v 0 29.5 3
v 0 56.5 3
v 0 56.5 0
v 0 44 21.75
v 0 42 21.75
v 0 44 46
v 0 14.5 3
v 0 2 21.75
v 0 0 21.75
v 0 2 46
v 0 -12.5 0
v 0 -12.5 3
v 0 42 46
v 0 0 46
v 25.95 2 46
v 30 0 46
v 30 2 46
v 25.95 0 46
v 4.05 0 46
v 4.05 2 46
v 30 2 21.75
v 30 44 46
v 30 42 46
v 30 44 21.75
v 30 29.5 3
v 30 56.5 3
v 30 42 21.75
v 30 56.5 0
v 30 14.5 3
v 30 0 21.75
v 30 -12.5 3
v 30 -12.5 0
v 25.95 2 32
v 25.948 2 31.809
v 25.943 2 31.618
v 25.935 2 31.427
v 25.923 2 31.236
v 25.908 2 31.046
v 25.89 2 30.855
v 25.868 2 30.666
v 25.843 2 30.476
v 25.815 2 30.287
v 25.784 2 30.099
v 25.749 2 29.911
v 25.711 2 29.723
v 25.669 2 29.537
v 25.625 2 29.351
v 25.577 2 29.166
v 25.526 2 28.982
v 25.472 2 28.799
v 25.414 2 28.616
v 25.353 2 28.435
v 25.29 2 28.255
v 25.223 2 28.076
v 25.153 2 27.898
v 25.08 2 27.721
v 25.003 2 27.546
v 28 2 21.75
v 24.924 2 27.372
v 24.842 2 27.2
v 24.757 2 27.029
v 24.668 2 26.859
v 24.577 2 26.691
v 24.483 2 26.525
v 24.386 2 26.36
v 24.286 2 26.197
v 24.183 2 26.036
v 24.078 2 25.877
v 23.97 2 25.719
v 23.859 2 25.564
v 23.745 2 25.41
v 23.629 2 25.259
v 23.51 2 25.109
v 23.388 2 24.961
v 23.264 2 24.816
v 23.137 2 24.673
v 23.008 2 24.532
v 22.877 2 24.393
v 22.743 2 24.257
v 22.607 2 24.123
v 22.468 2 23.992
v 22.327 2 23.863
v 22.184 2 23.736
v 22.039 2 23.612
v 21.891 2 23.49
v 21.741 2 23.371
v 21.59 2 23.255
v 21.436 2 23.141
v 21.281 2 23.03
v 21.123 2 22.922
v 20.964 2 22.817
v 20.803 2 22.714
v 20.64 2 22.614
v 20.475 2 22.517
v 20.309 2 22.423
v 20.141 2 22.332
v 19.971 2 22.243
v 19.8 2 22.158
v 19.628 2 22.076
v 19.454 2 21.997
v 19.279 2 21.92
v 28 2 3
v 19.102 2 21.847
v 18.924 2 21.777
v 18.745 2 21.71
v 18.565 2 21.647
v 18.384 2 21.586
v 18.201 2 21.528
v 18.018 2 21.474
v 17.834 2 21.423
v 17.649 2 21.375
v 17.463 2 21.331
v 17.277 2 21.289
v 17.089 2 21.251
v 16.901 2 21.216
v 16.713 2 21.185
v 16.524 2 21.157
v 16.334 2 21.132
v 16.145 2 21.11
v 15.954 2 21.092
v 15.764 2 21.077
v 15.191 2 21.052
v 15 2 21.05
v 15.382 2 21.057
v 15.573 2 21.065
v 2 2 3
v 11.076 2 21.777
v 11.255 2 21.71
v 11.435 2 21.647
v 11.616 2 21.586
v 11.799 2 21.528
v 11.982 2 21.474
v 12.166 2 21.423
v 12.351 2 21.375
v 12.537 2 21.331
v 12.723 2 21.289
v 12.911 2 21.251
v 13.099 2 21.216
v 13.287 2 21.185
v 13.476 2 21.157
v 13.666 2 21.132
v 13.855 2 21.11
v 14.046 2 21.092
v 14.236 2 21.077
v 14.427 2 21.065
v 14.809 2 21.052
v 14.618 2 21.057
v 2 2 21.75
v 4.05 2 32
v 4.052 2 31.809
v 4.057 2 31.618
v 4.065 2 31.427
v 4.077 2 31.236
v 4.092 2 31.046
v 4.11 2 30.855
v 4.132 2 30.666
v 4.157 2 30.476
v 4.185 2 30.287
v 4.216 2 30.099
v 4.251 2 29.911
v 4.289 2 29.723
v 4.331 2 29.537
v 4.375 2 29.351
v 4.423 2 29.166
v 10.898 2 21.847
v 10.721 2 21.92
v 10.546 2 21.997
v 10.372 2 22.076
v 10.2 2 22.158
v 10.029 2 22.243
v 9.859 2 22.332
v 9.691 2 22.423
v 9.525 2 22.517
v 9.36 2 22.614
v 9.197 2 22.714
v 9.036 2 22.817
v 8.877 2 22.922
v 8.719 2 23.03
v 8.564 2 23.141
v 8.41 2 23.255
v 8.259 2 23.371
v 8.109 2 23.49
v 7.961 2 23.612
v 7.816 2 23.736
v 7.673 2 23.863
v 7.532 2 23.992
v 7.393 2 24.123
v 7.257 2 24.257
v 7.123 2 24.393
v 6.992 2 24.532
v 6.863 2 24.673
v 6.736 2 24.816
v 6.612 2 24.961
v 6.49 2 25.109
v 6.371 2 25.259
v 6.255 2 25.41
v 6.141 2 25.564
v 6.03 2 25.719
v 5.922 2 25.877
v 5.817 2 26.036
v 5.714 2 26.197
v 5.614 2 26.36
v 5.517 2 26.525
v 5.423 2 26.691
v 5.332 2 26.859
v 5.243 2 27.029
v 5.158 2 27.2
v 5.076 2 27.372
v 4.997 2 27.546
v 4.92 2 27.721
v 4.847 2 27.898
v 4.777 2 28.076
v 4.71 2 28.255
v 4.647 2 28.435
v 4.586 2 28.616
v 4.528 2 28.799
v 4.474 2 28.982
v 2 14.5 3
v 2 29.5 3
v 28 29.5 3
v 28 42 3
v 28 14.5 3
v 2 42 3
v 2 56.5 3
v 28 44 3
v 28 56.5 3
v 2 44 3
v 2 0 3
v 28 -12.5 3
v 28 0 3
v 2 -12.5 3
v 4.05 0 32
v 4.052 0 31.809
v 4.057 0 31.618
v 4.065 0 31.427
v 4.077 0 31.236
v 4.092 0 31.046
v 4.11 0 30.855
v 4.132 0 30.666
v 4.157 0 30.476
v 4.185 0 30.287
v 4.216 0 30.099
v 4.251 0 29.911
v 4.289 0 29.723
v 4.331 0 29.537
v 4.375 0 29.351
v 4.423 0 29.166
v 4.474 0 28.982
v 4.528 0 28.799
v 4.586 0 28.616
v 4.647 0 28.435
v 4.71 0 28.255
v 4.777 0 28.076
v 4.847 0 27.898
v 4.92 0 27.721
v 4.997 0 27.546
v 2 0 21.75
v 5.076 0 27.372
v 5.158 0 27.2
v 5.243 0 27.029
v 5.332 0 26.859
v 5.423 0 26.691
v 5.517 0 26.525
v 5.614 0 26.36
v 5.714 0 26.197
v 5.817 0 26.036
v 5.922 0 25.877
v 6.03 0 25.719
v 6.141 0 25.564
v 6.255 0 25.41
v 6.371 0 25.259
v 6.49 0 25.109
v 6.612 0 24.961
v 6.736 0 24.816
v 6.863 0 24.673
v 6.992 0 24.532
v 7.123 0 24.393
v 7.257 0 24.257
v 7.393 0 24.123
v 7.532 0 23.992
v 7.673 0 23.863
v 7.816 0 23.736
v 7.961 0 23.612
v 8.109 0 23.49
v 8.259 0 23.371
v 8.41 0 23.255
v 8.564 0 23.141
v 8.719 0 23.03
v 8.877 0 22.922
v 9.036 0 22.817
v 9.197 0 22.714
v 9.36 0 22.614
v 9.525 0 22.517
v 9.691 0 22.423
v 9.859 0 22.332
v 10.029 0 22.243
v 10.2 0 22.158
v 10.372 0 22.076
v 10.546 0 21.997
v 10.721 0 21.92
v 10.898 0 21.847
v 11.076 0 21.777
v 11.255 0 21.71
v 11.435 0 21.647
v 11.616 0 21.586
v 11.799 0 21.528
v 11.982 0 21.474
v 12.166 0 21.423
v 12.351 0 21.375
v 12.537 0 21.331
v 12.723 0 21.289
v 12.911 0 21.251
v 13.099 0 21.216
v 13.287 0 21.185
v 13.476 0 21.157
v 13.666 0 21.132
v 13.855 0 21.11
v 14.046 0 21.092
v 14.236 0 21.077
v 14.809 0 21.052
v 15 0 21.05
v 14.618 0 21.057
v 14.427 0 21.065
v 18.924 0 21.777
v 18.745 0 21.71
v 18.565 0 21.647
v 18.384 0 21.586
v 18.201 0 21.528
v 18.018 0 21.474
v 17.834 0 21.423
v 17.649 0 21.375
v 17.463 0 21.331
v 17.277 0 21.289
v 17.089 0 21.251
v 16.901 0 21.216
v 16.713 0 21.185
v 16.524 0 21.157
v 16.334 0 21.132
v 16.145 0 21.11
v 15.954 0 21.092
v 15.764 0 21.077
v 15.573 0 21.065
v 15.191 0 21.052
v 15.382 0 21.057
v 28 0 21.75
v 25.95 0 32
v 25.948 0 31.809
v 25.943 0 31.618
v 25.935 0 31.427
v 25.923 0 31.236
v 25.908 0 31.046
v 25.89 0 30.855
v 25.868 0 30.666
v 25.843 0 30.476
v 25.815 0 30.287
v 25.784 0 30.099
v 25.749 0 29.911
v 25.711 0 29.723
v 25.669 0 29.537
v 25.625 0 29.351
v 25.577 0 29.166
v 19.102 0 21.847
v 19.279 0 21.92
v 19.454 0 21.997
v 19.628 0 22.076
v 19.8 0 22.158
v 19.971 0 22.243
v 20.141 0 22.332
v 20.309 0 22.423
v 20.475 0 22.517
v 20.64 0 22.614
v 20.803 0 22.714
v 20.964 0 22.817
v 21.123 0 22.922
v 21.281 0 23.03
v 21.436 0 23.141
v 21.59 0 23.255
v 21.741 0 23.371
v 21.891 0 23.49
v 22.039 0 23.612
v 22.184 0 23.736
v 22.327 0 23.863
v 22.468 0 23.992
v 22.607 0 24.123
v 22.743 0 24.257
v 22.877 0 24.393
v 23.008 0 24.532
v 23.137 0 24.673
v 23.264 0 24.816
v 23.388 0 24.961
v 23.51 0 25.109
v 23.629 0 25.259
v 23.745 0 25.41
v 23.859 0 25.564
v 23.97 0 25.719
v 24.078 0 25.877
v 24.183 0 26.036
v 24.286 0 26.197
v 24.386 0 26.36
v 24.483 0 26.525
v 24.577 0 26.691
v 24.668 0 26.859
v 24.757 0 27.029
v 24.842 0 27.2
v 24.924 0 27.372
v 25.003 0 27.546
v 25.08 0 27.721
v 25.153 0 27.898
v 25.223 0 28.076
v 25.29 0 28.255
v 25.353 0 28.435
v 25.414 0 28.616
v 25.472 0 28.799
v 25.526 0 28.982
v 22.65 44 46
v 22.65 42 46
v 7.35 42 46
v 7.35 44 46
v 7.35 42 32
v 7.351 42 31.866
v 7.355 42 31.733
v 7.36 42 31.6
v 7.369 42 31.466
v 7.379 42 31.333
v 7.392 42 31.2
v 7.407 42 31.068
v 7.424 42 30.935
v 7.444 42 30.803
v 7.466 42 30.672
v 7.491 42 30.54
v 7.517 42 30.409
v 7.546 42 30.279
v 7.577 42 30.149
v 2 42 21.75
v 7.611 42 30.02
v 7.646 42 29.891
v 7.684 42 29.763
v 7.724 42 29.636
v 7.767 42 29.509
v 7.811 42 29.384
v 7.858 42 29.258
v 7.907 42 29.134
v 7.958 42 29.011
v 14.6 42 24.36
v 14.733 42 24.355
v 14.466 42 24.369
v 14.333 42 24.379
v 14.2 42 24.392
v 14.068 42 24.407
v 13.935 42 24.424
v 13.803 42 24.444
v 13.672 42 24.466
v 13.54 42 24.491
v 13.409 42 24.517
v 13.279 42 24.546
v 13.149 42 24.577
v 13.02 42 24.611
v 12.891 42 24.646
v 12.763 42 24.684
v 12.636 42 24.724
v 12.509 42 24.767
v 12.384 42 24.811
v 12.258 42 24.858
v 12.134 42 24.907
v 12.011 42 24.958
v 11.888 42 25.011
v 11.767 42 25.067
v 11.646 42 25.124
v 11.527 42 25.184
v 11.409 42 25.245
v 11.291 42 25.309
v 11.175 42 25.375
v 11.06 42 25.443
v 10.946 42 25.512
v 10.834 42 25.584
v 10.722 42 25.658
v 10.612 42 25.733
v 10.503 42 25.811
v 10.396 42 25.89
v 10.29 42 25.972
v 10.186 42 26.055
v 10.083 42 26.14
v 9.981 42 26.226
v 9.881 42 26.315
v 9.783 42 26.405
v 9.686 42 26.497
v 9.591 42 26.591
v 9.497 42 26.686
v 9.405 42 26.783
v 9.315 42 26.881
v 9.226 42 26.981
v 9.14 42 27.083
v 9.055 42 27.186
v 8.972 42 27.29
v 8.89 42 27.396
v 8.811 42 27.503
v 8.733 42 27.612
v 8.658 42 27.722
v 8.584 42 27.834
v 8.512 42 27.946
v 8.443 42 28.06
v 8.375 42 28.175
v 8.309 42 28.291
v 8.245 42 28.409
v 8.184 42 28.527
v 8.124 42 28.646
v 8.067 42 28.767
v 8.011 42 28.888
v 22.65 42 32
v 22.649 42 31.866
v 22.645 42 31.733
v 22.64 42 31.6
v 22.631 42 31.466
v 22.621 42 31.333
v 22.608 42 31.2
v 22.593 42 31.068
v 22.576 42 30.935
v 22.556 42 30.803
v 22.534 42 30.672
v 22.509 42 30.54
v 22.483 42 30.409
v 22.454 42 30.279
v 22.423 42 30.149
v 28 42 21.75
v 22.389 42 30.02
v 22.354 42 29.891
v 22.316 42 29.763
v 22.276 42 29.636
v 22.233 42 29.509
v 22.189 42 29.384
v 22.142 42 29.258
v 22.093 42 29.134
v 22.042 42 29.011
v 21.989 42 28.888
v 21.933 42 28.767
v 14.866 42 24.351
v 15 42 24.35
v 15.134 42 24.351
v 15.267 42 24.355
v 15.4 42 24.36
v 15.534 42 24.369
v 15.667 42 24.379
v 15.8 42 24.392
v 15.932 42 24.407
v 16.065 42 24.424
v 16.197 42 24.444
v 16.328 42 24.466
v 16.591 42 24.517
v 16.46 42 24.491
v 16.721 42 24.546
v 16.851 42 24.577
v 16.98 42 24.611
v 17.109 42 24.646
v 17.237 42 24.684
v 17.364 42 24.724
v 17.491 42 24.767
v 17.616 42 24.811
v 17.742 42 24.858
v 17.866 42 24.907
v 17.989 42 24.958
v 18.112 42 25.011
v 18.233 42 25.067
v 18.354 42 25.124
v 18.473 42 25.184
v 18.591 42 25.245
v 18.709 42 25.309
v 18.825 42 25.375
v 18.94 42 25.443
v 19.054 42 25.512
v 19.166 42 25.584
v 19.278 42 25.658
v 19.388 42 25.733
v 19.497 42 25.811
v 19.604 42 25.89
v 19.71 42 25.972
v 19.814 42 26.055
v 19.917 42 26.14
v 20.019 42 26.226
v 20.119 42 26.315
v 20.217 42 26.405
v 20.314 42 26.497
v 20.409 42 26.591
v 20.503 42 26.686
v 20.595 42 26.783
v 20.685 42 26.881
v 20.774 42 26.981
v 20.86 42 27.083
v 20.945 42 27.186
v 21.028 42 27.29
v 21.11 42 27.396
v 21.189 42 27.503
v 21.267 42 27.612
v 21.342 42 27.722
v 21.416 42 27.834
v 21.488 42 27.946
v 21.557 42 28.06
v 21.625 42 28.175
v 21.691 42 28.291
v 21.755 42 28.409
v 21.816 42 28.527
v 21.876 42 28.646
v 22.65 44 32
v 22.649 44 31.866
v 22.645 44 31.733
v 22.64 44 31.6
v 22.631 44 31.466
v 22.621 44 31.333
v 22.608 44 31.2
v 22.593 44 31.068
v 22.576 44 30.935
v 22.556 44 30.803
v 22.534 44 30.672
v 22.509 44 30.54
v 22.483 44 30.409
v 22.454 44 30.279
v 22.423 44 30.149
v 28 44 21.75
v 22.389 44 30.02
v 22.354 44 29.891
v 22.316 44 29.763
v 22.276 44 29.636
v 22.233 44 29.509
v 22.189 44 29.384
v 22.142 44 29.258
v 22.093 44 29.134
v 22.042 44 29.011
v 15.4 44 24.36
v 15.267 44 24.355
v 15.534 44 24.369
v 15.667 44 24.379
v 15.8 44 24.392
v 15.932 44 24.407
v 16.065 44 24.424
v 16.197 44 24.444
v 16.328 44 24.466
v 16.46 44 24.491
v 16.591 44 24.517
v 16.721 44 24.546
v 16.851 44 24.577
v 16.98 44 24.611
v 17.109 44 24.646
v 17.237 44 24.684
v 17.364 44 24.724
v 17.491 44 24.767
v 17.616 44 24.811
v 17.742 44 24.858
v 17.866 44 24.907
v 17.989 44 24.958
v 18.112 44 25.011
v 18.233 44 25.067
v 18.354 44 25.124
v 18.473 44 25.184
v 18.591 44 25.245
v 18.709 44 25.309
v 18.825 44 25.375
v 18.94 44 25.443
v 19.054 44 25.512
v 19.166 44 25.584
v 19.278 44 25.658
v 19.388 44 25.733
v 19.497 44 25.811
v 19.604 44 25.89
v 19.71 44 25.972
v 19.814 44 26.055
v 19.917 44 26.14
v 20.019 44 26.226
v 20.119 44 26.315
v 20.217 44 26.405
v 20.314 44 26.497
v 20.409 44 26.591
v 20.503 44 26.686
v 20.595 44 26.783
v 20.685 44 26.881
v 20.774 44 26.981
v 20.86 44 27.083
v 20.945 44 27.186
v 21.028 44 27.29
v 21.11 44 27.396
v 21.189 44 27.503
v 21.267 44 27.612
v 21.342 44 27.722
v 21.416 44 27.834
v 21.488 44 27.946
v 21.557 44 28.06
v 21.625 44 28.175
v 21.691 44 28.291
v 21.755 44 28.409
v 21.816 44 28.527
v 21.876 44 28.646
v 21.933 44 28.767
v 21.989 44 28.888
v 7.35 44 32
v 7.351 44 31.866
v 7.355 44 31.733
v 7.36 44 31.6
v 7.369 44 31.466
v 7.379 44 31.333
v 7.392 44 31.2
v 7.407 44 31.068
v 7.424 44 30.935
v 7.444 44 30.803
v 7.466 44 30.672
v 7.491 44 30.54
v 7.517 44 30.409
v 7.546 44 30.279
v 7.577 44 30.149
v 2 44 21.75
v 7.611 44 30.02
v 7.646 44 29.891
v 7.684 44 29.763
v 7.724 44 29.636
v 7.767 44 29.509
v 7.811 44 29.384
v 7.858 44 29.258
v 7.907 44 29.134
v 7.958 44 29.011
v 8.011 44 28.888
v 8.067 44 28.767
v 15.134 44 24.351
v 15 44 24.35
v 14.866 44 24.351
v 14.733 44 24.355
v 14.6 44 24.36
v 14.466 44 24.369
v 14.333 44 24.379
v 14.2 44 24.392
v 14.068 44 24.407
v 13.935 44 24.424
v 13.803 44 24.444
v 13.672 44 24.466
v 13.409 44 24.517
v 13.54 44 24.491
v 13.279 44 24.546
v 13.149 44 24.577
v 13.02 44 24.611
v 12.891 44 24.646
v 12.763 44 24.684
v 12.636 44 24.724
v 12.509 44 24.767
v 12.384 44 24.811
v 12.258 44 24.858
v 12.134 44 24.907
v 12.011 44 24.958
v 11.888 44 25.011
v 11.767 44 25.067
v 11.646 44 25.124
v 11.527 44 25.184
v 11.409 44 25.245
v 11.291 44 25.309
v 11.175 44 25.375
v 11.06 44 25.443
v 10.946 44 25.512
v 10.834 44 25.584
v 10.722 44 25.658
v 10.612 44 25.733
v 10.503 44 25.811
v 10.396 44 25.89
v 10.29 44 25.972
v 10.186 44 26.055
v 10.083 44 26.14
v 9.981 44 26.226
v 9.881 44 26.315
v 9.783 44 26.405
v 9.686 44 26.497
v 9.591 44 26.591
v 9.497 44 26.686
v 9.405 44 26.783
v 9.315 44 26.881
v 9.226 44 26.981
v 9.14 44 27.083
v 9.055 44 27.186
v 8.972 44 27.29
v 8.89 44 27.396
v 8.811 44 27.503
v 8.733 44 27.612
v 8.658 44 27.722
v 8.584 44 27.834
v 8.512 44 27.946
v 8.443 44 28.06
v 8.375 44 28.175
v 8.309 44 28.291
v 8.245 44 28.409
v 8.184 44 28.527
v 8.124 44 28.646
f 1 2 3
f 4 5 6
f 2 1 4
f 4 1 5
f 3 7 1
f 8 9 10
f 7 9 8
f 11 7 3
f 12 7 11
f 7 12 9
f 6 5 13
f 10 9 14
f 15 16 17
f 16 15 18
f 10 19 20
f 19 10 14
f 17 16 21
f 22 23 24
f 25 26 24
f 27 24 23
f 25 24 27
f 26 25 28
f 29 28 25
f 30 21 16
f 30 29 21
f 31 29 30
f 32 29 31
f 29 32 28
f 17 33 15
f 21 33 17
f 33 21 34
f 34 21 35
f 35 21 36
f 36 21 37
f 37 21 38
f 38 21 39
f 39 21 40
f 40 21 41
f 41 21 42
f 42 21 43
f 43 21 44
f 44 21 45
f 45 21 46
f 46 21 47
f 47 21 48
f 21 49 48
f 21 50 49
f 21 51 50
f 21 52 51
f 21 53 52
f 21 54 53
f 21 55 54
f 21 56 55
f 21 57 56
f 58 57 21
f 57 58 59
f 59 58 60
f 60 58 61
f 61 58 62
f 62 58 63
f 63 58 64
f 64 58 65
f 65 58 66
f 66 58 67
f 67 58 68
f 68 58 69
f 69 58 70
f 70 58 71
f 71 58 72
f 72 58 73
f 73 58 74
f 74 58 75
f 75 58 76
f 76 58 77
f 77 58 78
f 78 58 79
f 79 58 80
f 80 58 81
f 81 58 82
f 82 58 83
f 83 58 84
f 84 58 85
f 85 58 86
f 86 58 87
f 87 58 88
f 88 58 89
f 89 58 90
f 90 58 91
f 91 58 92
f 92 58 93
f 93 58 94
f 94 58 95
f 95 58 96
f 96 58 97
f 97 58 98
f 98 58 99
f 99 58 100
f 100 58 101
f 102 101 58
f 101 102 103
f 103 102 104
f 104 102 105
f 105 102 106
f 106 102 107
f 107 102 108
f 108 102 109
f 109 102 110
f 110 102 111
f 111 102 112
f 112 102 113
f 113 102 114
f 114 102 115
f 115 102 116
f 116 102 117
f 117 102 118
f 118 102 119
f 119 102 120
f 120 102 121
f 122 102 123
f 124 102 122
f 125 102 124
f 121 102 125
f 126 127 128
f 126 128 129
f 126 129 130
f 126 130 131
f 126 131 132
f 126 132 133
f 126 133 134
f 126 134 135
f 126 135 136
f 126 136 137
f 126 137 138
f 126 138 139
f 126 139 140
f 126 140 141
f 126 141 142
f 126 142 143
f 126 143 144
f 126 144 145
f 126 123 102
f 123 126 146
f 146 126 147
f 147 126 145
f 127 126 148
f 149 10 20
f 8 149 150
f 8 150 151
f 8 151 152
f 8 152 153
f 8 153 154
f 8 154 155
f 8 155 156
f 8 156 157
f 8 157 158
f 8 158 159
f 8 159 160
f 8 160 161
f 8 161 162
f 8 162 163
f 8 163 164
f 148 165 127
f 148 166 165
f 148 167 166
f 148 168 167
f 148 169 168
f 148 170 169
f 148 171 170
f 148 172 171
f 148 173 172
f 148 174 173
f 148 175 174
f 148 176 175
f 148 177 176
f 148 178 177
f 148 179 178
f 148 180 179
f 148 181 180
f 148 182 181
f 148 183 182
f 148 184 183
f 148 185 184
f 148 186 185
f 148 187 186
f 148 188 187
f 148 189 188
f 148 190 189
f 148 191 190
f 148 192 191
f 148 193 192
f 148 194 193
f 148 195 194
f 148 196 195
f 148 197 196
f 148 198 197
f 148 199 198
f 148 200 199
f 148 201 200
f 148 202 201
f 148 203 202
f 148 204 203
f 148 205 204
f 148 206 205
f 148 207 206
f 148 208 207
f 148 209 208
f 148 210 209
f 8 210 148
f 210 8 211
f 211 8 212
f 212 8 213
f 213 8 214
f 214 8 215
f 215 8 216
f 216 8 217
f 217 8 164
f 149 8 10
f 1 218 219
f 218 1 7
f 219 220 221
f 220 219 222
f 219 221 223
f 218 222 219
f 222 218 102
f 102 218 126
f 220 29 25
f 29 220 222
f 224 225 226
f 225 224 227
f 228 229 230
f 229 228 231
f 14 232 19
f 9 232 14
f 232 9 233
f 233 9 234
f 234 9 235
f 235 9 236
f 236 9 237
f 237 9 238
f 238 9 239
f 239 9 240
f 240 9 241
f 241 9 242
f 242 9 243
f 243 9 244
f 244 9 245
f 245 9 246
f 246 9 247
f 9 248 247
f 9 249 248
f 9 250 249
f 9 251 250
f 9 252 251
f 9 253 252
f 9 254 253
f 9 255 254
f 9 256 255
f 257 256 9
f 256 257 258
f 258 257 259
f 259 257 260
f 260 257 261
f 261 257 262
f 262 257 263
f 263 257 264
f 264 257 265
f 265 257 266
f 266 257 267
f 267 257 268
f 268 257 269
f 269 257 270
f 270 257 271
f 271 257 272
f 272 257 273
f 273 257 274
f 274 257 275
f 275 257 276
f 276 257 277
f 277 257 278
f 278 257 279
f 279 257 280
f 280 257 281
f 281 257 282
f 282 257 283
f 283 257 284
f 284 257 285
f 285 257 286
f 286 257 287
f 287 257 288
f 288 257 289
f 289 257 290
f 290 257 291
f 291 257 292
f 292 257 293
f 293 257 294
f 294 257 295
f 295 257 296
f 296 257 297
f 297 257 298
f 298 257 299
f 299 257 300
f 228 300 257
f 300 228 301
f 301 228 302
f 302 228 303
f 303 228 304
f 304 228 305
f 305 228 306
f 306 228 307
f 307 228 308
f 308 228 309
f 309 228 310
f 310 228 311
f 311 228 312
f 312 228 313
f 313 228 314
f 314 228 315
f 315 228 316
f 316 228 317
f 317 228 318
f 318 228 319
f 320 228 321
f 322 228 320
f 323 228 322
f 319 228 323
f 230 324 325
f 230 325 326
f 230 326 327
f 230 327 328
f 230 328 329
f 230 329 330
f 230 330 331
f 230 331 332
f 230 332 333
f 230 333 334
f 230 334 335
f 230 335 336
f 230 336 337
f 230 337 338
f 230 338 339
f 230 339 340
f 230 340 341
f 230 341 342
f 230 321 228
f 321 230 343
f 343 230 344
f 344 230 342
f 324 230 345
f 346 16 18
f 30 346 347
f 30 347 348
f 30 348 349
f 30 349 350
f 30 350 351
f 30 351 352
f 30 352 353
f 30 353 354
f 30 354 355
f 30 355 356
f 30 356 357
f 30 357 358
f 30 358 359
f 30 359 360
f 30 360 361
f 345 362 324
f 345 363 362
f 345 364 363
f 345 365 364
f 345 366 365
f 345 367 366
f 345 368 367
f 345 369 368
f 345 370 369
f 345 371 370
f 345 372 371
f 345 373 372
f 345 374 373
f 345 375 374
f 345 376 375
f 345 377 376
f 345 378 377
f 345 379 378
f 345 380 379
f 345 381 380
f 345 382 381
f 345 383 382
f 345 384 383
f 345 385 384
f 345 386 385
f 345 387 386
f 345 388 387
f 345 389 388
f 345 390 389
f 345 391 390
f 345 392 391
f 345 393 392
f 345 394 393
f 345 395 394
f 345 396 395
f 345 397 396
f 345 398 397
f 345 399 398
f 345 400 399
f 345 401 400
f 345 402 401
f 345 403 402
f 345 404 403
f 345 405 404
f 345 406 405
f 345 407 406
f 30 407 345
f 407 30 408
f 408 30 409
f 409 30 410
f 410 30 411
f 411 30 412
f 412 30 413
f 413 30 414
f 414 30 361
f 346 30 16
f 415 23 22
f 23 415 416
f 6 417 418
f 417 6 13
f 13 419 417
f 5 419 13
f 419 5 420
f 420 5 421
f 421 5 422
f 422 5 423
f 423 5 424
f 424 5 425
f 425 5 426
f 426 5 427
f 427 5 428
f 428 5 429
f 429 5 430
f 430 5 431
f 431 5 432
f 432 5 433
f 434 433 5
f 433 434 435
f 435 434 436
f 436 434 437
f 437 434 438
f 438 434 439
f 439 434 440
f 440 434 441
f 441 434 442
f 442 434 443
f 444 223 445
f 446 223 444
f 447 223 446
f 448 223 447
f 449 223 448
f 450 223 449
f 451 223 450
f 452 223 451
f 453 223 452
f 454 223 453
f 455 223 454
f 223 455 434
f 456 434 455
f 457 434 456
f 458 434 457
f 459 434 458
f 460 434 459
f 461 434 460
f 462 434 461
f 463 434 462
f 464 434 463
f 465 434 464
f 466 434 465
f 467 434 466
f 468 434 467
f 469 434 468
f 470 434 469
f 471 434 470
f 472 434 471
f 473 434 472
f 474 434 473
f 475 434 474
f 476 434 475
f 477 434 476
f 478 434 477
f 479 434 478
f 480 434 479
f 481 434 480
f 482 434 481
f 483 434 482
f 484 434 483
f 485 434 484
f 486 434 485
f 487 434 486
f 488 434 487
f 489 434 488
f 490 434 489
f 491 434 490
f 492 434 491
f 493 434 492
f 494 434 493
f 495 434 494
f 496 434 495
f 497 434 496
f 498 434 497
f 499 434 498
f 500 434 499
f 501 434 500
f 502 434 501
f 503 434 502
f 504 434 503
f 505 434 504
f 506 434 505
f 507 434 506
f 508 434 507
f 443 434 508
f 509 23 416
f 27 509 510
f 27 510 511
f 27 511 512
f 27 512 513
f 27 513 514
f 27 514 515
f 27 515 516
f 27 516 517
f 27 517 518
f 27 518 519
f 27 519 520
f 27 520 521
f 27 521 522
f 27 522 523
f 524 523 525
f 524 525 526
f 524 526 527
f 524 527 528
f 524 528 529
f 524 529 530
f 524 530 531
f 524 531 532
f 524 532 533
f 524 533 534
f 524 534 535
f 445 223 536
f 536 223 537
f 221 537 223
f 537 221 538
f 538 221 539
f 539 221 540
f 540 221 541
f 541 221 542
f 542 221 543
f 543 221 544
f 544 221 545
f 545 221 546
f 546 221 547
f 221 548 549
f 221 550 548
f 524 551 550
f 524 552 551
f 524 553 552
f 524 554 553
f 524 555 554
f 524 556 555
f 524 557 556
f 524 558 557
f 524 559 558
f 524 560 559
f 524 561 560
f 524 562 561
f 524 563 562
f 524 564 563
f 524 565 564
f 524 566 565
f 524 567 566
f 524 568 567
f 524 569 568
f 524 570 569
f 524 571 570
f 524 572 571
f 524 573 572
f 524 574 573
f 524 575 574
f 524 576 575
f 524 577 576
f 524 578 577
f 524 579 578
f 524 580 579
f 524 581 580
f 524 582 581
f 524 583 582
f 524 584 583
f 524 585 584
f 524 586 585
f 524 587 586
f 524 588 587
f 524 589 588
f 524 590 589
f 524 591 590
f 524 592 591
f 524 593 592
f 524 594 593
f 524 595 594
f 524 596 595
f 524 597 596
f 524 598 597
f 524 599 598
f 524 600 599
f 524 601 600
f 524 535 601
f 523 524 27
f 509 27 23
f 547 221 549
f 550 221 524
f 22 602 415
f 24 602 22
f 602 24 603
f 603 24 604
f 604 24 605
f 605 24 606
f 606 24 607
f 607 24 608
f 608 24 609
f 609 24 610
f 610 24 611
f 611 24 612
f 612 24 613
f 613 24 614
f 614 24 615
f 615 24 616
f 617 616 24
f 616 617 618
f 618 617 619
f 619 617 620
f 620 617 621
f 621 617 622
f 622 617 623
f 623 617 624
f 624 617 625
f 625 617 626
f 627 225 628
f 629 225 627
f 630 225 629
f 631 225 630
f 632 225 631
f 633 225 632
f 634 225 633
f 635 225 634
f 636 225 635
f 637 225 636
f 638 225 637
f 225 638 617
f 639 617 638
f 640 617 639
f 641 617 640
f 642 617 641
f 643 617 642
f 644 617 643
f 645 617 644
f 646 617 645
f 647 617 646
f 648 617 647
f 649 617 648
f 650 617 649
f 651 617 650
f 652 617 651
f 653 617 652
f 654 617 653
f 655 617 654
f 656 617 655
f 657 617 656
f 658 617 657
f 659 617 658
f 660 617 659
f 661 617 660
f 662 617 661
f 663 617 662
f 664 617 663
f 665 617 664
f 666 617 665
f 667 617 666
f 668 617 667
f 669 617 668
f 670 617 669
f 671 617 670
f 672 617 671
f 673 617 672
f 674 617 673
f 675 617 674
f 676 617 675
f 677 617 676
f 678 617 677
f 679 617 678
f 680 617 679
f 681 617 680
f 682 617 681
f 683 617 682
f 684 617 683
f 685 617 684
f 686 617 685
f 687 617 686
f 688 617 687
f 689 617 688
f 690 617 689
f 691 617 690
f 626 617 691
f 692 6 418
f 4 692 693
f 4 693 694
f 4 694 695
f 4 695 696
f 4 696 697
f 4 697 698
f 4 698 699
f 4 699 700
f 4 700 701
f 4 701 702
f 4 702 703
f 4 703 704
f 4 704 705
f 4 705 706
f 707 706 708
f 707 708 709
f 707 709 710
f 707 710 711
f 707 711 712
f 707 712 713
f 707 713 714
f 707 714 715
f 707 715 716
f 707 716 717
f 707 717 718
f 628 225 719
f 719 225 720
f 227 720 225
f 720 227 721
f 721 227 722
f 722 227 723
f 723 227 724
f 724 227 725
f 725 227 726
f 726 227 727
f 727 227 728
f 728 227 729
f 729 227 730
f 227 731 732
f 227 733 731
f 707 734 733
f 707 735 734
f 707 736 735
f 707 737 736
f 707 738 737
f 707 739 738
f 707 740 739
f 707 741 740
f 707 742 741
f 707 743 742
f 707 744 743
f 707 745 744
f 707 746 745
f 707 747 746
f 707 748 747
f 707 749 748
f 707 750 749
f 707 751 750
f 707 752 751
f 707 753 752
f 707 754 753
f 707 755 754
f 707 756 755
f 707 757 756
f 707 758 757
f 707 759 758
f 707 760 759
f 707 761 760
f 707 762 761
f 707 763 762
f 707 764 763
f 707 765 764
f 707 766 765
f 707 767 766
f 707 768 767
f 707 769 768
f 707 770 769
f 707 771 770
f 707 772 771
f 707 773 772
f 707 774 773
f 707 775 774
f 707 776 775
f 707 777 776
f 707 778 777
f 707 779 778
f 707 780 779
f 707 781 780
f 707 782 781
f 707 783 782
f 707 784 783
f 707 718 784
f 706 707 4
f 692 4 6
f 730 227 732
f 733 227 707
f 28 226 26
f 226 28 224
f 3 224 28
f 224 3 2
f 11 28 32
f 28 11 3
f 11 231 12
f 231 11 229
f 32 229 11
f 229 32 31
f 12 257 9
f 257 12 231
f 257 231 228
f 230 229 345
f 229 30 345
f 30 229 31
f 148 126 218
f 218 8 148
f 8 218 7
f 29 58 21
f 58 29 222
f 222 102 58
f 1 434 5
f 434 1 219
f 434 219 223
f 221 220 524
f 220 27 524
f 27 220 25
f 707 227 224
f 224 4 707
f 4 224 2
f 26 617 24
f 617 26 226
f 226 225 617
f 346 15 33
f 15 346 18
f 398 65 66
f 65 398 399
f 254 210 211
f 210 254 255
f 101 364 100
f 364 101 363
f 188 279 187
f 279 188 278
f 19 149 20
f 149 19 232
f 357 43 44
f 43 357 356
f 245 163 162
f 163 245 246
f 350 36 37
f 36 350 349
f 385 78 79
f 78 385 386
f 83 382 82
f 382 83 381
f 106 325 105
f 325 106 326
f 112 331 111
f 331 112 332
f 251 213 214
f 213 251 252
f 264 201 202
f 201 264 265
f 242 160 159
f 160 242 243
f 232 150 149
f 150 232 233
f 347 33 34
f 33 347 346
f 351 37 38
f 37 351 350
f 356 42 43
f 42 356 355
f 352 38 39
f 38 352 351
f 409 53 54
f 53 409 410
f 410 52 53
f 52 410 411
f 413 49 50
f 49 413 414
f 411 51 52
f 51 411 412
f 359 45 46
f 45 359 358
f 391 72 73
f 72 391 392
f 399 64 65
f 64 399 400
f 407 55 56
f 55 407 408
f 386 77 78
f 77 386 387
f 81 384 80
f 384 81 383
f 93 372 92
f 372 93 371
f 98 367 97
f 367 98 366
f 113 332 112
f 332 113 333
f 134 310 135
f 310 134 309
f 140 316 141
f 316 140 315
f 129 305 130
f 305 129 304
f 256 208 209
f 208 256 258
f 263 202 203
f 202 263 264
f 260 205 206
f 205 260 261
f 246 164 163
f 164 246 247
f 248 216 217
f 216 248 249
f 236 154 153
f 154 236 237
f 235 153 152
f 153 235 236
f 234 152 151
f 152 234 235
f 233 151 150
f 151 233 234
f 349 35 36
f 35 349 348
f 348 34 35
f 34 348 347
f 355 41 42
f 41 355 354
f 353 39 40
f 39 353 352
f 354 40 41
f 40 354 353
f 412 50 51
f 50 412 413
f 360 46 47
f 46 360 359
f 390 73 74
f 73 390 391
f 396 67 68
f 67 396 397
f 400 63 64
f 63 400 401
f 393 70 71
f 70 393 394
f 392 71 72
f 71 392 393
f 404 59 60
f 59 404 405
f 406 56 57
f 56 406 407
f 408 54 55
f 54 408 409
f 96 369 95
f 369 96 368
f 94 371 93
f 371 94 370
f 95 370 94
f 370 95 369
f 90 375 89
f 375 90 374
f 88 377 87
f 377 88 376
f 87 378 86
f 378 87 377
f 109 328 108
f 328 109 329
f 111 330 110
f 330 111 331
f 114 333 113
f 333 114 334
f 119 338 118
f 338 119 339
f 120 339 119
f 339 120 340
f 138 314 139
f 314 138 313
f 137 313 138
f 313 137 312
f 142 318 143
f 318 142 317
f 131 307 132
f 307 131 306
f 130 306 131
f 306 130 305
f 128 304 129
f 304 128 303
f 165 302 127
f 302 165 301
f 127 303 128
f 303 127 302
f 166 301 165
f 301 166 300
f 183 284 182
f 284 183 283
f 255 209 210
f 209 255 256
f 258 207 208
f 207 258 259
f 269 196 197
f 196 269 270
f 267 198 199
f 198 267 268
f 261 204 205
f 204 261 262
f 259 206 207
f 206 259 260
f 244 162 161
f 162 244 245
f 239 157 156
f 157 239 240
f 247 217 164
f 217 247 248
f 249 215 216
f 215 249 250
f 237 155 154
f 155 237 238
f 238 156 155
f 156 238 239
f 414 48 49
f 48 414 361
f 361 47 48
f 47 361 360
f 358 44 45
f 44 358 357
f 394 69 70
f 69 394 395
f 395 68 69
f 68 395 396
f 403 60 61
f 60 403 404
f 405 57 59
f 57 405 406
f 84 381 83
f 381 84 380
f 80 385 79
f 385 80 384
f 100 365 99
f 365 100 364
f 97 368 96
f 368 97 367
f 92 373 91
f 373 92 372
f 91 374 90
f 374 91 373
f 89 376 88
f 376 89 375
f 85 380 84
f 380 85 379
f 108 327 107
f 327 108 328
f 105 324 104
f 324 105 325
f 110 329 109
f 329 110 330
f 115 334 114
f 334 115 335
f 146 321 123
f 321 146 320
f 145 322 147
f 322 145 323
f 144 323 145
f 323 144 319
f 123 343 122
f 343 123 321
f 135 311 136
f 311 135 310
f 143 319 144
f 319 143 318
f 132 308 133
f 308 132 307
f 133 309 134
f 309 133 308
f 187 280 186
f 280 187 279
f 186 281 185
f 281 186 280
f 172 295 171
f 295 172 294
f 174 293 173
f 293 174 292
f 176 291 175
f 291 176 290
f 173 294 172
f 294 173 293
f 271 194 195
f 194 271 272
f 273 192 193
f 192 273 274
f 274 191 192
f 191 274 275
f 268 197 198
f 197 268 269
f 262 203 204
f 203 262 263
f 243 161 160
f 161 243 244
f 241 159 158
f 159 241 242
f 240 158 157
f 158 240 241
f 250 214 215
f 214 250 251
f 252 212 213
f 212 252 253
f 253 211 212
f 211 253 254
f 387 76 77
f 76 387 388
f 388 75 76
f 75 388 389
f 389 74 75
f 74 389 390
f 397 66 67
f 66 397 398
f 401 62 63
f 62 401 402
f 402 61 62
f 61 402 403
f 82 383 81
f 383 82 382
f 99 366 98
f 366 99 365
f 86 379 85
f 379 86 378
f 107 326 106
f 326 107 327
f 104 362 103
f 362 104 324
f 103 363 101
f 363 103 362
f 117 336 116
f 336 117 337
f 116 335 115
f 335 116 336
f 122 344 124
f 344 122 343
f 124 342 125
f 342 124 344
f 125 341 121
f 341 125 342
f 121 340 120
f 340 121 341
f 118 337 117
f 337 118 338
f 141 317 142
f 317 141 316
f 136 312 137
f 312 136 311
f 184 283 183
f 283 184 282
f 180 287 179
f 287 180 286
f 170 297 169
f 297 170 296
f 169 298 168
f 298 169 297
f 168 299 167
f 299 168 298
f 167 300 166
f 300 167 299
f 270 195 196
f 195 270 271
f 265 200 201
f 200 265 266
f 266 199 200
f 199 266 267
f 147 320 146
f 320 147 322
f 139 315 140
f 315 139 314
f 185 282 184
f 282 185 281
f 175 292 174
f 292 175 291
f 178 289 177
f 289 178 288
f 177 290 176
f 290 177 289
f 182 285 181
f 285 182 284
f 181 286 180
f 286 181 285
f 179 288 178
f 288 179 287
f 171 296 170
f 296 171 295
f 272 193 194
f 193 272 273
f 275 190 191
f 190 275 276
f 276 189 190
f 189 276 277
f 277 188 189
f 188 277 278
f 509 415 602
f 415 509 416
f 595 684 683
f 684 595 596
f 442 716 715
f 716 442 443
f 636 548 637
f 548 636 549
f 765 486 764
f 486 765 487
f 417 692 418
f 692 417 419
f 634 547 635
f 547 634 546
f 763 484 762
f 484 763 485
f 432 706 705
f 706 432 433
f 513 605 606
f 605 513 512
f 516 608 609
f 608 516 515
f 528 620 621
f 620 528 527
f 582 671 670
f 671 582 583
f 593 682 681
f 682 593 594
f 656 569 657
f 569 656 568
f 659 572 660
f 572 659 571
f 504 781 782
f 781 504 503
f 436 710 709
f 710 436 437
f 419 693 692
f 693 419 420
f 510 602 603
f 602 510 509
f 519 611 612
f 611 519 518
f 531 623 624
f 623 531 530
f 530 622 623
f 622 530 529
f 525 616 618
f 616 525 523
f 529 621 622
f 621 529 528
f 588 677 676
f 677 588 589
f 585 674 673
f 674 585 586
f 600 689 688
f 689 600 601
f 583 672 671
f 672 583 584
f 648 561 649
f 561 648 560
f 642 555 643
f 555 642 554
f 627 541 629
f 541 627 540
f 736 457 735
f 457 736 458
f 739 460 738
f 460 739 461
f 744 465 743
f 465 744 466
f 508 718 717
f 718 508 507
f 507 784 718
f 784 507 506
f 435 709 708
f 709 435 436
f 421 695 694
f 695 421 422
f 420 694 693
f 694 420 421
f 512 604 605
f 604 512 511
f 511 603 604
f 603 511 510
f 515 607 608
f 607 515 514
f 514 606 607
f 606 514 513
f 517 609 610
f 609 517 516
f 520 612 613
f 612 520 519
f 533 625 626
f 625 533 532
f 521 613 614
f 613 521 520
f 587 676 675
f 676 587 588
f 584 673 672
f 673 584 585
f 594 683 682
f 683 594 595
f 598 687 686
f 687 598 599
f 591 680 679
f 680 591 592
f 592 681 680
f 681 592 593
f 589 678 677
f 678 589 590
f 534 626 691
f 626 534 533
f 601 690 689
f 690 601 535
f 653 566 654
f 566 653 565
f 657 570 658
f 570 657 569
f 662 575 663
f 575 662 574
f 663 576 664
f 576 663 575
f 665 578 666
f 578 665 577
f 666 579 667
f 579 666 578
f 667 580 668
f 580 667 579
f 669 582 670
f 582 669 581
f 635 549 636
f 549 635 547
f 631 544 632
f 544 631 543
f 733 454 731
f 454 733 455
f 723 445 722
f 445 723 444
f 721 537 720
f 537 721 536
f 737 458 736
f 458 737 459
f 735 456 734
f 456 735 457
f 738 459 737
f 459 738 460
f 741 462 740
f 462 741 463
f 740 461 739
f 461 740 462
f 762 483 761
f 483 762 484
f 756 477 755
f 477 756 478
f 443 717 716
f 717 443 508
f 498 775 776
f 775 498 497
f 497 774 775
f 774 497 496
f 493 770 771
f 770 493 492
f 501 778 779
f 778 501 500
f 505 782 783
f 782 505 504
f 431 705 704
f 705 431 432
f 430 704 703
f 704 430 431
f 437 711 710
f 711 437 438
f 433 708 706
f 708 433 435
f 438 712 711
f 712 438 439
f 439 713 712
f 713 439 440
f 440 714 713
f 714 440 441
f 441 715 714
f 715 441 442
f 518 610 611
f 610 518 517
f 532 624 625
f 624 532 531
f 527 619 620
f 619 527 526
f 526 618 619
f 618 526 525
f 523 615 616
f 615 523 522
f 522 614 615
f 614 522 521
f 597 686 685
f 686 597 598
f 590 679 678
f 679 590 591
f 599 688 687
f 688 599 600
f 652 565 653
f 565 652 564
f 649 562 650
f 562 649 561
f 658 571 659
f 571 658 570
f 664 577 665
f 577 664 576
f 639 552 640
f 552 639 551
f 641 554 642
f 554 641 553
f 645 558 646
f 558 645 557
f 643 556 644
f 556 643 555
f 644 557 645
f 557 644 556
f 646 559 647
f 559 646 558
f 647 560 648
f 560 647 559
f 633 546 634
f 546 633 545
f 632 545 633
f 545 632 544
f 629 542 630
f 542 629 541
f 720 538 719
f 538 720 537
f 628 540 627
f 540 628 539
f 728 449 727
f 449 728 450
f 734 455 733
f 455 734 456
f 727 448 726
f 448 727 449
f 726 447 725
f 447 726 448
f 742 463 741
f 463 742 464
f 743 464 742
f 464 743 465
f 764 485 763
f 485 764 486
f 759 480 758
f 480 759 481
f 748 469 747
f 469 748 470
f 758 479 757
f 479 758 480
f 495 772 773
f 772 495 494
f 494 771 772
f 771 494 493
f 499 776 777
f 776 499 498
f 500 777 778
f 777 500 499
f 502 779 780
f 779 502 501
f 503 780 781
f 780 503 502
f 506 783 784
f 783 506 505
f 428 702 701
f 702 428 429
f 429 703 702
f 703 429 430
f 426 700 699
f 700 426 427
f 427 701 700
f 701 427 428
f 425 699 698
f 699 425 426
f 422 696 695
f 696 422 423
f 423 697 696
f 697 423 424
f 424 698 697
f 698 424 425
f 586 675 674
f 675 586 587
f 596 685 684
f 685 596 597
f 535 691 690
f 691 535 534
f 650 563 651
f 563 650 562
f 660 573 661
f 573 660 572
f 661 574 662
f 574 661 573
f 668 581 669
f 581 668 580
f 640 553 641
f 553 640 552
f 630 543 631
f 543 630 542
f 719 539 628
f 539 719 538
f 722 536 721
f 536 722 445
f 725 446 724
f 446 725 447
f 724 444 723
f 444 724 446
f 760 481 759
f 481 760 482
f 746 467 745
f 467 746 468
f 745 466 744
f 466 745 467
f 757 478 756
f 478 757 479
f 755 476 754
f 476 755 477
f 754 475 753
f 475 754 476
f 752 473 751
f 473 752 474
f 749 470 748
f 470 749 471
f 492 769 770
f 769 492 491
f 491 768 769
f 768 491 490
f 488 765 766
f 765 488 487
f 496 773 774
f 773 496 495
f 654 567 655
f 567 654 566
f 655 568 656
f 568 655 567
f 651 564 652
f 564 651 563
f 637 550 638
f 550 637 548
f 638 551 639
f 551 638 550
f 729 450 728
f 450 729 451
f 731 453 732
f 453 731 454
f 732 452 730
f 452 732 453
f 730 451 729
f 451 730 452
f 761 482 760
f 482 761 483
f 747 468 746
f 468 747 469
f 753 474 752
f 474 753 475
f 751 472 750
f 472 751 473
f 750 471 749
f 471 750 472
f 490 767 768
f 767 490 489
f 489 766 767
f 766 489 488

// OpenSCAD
$fn         = 360.0;  // Number of sides (64 for test, 360 to render)
width       =  30.0;  // Overall width of bracket
length      =  40.0;  // Distance between inside walls of vertical sections
overhang    =  12.5;  // Base extension past end of vertical sections
height      =  43.0;  // Height of vertical sections
vert_thick  =   2.0;  // Thickness of vertical sections
base_thick  =   3.0;  // Thickness of base
h1_dia      =  21.9;  // Diameter of valve body behind inlet port nut
h2_dia      =  15.3;  // Diameter of valve body behind 3/4-16 UNF threads
center      =  32.0;  // Height of inlet port centerline from bottom of base plate

module triangle (o_len, a_len, depth, center = false)
{
  centroid = center ? [-a_len / 3, -o_len / 3, -depth / 2] : [0, 0, 0];

  translate(centroid) linear_extrude (height = depth)
    polygon (points = [[0, 0] ,[a_len, 0], [0, o_len]], paths = [[0, 1, 2]]);
}

module bracket () {
  translate ([0, 0, base_thick])
    cube ([width, vert_thick, height]);
  translate ([0, vert_thick + length, base_thick])
    cube ([width, vert_thick, height]);
  translate ([0, -overhang, 0])
    cube ([width, (vert_thick * 2) + length + (overhang * 2), base_thick]);
}

module hole (hole_dia, y_pos) {
  translate ([width / 2, y_pos + -0.01, center]) {
    rotate ([90, 0, 180]) {
      hull () {
        cylinder (d = hole_dia, h = 0.01 + vert_thick + 0.01);
        translate ([0, hole_dia * 2, 0])
          cylinder (d = hole_dia, h = 0.01 + vert_thick + 0.01);
      }
    }
  }
}

module gusset (y_offset = 0, gusset_thick = vert_thick, o_scale = 1.5) {
  translate ([0, y_offset, base_thick])
    rotate ([180, 270, 0])
      triangle (overhang, overhang * o_scale, gusset_thick);

  translate ([width - gusset_thick, y_offset, base_thick])
    rotate ([180, 270, 0])
      triangle (overhang, overhang * o_scale, gusset_thick);

  translate ([gusset_thick, y_offset + vert_thick, base_thick])
    rotate ([0, 270, 0])
      triangle (overhang, overhang * o_scale, gusset_thick);

  translate ([width, y_offset + vert_thick, base_thick])
    rotate ([0, 270, 0])
      triangle (overhang, overhang * o_scale, gusset_thick);
}

difference () {
  union () {
    bracket ();
    gusset (0);
    gusset (vert_thick + length);
  }

  hole (h1_dia, 0);
  hole (h2_dia, vert_thick + length);
}
